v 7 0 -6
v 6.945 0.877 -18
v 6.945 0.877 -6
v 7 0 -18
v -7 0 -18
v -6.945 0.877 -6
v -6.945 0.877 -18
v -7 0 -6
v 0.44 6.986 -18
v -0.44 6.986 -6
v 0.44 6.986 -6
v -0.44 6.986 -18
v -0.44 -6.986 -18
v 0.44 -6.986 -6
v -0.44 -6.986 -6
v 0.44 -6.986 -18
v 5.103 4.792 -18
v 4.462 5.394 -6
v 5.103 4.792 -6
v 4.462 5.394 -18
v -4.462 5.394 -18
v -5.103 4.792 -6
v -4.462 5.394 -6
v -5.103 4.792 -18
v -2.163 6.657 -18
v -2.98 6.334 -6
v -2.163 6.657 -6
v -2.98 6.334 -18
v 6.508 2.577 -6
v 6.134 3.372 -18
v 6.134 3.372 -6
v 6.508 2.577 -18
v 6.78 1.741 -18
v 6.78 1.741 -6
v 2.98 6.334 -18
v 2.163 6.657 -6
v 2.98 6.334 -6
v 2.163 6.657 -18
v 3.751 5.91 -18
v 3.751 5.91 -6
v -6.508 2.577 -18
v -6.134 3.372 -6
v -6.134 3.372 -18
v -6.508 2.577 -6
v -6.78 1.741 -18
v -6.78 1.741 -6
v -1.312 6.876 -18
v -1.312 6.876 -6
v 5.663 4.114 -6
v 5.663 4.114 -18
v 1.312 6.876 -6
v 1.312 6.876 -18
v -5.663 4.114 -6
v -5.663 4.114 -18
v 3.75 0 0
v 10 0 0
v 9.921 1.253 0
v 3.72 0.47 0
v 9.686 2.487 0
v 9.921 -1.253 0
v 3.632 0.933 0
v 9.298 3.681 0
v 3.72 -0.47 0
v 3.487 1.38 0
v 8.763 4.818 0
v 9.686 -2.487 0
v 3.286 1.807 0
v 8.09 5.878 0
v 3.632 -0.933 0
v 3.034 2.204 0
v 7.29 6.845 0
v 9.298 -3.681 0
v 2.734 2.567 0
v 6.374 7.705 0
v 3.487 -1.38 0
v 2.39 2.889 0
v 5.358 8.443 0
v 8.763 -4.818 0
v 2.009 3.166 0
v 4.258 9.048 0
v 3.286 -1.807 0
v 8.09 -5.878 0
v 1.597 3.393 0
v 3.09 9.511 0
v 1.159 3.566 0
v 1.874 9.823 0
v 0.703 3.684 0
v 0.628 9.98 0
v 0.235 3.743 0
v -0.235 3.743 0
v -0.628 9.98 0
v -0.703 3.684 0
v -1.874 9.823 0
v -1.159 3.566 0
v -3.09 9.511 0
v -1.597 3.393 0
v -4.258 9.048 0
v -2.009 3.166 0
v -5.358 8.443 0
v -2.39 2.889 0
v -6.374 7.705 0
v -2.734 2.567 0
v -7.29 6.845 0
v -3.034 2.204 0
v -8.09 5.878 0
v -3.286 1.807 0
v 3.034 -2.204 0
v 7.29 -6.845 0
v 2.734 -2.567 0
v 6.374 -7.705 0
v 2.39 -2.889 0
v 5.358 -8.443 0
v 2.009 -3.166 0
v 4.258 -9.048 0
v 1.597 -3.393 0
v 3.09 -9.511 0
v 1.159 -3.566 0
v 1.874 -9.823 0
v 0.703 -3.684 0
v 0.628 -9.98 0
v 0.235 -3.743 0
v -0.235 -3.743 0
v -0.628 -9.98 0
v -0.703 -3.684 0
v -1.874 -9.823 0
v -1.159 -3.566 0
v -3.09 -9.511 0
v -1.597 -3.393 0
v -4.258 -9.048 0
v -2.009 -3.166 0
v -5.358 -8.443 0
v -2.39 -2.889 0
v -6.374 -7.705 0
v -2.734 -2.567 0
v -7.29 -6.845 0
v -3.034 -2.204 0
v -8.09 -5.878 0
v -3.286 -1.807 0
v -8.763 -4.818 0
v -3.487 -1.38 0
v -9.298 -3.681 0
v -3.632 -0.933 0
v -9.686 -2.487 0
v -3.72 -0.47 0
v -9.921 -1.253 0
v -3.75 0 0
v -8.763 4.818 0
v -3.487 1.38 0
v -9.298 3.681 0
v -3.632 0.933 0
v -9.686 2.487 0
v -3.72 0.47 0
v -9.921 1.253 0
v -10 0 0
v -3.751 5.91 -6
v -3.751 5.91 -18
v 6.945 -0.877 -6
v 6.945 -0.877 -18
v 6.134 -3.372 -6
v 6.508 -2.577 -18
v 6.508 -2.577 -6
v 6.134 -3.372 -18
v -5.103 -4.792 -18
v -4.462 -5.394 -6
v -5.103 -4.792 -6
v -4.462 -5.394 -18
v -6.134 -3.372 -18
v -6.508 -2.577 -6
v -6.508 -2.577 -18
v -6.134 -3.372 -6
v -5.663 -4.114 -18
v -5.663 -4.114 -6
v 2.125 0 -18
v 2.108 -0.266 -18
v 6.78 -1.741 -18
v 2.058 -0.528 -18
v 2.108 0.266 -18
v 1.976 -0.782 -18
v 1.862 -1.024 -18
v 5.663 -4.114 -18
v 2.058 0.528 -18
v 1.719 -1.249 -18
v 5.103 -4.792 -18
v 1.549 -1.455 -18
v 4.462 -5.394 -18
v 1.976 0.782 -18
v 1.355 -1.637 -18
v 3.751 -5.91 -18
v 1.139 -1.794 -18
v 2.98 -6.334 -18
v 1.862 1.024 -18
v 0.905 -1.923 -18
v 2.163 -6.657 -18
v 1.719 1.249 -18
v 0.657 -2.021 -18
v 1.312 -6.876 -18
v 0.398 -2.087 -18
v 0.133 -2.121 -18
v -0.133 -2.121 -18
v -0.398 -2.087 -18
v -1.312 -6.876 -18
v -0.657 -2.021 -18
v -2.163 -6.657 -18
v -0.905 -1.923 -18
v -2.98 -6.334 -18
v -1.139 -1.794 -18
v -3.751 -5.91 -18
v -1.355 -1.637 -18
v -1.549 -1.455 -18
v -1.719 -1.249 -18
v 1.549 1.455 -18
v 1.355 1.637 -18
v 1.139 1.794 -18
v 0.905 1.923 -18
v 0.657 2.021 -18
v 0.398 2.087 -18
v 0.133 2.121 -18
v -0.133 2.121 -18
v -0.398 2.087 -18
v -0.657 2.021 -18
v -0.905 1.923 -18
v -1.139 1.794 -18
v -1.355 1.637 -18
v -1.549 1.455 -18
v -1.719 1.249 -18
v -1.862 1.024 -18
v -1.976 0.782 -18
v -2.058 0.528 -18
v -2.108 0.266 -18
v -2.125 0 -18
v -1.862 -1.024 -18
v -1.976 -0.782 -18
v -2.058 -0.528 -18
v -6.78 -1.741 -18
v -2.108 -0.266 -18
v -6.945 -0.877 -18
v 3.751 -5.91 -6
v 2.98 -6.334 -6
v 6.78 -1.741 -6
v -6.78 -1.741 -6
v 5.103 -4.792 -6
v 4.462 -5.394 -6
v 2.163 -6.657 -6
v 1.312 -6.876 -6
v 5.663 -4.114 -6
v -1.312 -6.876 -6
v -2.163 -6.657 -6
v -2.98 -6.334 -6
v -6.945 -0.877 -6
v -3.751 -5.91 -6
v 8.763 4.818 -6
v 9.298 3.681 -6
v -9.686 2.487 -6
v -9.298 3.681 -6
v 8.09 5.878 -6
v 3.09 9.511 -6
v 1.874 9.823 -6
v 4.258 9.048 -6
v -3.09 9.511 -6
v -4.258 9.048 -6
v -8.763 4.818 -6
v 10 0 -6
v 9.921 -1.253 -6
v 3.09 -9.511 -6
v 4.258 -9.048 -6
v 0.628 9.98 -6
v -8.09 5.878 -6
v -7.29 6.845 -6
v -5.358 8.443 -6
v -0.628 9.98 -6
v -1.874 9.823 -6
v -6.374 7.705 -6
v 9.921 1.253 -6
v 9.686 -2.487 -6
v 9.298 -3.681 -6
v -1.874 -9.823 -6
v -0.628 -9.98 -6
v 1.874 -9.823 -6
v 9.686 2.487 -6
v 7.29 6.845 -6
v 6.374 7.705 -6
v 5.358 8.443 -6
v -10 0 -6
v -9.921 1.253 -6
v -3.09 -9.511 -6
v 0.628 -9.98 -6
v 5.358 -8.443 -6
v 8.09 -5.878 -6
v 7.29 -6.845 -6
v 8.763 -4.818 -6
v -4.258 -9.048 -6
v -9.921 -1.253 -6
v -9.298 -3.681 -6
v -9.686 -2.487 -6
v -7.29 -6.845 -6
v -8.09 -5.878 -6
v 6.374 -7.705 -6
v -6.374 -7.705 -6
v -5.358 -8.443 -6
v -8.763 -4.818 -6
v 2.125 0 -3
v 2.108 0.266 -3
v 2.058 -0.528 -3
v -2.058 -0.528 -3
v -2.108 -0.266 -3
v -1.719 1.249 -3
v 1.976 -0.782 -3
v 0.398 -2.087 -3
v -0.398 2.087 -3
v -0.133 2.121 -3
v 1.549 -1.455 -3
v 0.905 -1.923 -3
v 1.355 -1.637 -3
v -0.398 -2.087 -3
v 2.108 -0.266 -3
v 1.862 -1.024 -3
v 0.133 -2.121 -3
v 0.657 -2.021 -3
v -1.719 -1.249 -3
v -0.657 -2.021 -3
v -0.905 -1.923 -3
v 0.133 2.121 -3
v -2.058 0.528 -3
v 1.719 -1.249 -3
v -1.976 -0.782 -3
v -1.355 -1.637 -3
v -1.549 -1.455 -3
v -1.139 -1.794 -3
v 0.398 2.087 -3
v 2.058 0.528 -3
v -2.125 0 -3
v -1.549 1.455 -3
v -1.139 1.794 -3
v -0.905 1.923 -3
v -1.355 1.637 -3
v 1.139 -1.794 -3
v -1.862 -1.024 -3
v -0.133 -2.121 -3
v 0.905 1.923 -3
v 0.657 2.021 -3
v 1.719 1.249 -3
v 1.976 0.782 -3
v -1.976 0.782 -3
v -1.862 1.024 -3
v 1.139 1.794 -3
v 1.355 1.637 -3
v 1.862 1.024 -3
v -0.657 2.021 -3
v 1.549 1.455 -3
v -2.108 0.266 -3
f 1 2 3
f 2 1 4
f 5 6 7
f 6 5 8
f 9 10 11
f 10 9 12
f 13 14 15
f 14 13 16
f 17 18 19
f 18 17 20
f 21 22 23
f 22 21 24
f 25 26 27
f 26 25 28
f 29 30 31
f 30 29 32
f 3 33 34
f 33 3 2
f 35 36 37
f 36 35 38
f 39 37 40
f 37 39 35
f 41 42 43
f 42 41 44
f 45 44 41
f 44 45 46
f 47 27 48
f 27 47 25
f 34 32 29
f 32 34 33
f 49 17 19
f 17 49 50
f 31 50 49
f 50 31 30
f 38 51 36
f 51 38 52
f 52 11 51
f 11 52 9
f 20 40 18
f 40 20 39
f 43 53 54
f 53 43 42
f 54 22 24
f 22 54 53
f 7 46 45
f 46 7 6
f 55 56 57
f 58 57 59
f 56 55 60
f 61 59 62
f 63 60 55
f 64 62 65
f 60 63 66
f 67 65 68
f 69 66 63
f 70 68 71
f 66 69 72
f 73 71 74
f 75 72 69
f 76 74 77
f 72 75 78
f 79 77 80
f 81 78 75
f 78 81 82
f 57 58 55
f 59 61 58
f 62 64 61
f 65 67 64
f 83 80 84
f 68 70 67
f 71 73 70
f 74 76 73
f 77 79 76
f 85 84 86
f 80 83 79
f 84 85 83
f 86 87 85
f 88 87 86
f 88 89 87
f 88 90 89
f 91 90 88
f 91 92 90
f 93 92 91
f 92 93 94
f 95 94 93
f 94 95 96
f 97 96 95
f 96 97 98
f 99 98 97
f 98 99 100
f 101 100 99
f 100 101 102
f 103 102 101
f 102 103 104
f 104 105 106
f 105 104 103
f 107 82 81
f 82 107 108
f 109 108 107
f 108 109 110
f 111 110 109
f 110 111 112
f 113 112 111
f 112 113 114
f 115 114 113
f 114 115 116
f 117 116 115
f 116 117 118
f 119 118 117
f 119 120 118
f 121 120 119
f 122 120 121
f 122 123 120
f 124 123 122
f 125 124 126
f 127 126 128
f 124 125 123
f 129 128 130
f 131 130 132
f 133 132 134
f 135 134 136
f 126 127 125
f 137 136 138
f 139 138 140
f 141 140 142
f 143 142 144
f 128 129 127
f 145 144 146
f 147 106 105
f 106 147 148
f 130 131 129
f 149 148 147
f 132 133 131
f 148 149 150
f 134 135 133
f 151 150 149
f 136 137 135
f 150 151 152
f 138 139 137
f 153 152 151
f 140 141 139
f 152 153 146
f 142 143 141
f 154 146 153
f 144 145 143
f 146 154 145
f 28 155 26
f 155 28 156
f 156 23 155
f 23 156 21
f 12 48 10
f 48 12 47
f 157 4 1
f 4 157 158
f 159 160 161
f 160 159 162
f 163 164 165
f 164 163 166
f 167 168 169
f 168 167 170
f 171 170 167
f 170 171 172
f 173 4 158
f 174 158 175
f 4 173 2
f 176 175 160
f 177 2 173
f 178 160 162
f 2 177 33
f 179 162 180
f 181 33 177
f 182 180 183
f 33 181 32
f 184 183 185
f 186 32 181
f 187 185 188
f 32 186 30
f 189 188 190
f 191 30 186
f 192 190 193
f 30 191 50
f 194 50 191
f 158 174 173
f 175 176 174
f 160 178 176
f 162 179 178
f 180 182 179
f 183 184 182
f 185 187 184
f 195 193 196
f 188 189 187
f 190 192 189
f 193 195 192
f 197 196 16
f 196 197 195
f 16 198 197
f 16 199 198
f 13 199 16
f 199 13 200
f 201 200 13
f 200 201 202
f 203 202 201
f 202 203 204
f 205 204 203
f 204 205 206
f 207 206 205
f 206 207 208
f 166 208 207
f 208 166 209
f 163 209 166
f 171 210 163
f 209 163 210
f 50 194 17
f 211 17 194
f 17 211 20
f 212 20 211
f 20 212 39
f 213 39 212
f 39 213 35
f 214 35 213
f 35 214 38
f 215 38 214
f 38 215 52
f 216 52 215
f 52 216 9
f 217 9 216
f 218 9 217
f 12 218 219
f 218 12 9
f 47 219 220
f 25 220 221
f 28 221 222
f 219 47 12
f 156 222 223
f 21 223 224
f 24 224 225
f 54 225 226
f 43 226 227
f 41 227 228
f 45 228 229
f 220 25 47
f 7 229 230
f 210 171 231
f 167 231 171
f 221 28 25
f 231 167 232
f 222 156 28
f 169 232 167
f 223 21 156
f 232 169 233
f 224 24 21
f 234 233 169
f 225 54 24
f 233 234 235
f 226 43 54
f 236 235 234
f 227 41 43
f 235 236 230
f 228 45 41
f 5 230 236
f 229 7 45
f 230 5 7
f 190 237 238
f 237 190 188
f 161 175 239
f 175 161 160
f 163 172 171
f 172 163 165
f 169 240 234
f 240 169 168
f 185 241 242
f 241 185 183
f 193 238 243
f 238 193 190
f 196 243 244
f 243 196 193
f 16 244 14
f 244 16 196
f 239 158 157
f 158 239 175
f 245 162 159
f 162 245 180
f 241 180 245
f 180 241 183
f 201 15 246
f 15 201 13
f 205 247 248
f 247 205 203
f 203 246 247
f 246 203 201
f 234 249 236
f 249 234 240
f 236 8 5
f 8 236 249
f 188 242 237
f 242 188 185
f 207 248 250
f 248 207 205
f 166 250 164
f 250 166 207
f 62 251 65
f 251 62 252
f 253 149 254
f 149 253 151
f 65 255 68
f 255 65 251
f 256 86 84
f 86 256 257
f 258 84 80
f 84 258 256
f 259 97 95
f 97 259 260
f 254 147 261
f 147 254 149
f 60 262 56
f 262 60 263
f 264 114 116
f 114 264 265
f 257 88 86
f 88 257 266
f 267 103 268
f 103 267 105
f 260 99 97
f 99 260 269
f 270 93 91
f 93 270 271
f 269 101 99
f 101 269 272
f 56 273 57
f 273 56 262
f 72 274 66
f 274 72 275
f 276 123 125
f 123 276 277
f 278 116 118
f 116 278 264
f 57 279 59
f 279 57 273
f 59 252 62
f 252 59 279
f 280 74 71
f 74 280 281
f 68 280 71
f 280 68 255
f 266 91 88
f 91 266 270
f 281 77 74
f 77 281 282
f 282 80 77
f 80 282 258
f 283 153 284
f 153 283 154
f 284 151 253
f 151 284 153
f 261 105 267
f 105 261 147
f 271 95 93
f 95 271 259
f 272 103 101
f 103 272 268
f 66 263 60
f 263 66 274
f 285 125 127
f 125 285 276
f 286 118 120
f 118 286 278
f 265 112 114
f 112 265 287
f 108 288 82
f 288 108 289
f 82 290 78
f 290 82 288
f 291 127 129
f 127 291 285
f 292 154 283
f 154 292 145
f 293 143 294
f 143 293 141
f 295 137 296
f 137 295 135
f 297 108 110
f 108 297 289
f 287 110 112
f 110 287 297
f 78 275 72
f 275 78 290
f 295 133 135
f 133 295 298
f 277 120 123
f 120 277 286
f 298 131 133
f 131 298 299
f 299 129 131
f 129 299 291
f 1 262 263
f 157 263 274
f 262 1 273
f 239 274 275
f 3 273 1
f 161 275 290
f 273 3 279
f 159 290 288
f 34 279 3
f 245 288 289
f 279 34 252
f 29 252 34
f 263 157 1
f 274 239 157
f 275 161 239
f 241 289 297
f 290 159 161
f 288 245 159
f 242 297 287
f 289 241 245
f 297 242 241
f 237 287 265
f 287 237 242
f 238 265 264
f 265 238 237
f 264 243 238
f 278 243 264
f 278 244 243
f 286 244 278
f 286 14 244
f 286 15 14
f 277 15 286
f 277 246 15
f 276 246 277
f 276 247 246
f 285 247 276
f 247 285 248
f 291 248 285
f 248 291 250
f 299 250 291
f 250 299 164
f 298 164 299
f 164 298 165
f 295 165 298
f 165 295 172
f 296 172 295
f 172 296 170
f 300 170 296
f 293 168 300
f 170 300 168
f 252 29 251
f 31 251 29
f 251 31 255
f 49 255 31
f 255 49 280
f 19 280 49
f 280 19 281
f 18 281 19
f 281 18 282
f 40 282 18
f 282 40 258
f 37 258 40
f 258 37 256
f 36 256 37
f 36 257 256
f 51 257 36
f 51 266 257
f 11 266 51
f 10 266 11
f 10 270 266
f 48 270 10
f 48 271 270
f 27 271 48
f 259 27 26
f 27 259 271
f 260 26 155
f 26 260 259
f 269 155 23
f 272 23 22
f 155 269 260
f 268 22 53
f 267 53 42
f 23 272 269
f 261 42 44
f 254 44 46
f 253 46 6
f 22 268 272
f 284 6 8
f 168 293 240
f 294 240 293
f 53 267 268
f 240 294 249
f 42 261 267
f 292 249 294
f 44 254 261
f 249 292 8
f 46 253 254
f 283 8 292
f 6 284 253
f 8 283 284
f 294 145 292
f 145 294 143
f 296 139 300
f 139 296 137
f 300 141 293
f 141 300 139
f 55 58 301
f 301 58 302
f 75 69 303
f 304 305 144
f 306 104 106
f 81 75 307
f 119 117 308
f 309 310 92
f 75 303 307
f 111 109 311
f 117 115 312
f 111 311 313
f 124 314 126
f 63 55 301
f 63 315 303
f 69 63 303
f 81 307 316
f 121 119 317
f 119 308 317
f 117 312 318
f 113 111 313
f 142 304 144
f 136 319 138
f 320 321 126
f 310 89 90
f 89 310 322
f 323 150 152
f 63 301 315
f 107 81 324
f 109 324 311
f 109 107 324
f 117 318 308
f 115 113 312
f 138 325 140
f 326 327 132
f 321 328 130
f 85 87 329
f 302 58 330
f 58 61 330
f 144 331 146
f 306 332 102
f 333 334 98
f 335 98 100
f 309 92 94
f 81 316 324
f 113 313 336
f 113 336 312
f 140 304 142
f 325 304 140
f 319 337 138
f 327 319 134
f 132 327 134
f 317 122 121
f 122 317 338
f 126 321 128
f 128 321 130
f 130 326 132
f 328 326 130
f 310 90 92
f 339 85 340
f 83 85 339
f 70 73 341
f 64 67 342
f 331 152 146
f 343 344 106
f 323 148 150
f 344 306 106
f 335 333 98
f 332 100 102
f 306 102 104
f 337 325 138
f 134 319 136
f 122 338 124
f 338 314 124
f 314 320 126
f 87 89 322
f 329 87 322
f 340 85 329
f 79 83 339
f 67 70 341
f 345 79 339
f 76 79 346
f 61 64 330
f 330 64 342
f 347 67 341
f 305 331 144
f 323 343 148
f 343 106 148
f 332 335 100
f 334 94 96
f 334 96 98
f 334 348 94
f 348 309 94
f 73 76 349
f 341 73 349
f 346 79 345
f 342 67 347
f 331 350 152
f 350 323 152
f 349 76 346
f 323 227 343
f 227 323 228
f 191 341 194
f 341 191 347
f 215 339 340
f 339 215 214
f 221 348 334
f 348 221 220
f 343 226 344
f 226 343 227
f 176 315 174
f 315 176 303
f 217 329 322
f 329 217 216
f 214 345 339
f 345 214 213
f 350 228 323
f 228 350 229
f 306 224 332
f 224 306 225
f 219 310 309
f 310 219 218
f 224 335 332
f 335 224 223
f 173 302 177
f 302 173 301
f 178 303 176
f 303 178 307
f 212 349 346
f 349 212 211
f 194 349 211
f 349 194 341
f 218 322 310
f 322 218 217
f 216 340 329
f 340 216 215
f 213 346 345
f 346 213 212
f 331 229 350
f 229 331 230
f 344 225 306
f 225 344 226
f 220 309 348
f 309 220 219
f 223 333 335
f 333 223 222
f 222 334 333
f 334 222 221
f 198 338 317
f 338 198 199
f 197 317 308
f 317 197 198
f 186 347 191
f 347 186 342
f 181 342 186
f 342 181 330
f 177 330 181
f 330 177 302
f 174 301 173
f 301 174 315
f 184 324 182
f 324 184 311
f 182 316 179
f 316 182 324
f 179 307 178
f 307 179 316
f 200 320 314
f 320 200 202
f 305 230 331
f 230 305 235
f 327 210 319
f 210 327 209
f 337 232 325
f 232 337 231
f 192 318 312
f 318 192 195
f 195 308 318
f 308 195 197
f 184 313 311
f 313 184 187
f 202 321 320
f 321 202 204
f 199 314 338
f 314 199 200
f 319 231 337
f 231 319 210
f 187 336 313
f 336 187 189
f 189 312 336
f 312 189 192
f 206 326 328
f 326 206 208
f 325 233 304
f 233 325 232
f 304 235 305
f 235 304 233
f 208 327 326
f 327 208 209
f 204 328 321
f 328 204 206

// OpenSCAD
$fn = 50;


difference() {
	union() {
		translate(v = [0, 0, -18.0000000000]) {
			cylinder(h = 18, r = 7.0000000000);
		}
		translate(v = [0, 0, -6.0000000000]) {
			cylinder(h = 6, r = 10.0000000000);
		}
	}
	union() {
		translate(v = [0, 0, 0]) {
			rotate(a = [0, 0, 0]) {
				difference() {
					union() {
						#translate(v = [0, 0, -18.0000000000]) {
							cylinder(h = 18, r = 2.0000000000);
						}
						#translate(v = [0, 0, -3]) {
							cylinder(h = 3, r1 = 2.1250000000, r2 = 3.7500000000);
						}
						#translate(v = [0, 0, -18.0000000000]) {
							cylinder(h = 18, r = 2.1250000000);
						}
						#translate(v = [0, 0, -18.0000000000]) {
							cylinder(h = 18, r = 2.0000000000);
						}
					}
					union();
				}
			}
		}
	}
}
